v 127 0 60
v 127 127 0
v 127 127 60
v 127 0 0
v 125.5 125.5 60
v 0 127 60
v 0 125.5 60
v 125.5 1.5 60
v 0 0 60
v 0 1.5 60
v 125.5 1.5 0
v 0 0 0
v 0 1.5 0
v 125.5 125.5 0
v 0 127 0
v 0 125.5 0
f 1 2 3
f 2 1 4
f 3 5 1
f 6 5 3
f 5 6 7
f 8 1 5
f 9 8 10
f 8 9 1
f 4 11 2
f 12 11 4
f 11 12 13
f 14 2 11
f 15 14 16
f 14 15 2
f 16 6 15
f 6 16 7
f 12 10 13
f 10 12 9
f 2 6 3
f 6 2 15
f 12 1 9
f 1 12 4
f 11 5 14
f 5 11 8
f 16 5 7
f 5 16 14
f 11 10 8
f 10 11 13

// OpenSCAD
// Outer dimensions
outer_height = 60;
outer_width = 127;

// Wall thickness
wall_thickness = 1.5;

extension_buffer_mm=10;

// Inner dimensions (calculated)
inner_height = outer_height - 2 * wall_thickness;
inner_width = outer_width - 2 * wall_thickness;

// Create the outer cuboid
module outer_cuboid() {
  cube([outer_width, outer_width, outer_height]);
}

// Create the inner (negative space) cuboid
module inner_cuboid() {
  cube([inner_width + extension_buffer_mm, inner_width, inner_height *10]);
}

// Create the hollow cuboid by subtracting the inner from the outer
difference() {
  outer_cuboid();
  translate([wall_thickness - extension_buffer_mm, wall_thickness, wall_thickness- extension_buffer_mm]) 
  inner_cuboid();
}
